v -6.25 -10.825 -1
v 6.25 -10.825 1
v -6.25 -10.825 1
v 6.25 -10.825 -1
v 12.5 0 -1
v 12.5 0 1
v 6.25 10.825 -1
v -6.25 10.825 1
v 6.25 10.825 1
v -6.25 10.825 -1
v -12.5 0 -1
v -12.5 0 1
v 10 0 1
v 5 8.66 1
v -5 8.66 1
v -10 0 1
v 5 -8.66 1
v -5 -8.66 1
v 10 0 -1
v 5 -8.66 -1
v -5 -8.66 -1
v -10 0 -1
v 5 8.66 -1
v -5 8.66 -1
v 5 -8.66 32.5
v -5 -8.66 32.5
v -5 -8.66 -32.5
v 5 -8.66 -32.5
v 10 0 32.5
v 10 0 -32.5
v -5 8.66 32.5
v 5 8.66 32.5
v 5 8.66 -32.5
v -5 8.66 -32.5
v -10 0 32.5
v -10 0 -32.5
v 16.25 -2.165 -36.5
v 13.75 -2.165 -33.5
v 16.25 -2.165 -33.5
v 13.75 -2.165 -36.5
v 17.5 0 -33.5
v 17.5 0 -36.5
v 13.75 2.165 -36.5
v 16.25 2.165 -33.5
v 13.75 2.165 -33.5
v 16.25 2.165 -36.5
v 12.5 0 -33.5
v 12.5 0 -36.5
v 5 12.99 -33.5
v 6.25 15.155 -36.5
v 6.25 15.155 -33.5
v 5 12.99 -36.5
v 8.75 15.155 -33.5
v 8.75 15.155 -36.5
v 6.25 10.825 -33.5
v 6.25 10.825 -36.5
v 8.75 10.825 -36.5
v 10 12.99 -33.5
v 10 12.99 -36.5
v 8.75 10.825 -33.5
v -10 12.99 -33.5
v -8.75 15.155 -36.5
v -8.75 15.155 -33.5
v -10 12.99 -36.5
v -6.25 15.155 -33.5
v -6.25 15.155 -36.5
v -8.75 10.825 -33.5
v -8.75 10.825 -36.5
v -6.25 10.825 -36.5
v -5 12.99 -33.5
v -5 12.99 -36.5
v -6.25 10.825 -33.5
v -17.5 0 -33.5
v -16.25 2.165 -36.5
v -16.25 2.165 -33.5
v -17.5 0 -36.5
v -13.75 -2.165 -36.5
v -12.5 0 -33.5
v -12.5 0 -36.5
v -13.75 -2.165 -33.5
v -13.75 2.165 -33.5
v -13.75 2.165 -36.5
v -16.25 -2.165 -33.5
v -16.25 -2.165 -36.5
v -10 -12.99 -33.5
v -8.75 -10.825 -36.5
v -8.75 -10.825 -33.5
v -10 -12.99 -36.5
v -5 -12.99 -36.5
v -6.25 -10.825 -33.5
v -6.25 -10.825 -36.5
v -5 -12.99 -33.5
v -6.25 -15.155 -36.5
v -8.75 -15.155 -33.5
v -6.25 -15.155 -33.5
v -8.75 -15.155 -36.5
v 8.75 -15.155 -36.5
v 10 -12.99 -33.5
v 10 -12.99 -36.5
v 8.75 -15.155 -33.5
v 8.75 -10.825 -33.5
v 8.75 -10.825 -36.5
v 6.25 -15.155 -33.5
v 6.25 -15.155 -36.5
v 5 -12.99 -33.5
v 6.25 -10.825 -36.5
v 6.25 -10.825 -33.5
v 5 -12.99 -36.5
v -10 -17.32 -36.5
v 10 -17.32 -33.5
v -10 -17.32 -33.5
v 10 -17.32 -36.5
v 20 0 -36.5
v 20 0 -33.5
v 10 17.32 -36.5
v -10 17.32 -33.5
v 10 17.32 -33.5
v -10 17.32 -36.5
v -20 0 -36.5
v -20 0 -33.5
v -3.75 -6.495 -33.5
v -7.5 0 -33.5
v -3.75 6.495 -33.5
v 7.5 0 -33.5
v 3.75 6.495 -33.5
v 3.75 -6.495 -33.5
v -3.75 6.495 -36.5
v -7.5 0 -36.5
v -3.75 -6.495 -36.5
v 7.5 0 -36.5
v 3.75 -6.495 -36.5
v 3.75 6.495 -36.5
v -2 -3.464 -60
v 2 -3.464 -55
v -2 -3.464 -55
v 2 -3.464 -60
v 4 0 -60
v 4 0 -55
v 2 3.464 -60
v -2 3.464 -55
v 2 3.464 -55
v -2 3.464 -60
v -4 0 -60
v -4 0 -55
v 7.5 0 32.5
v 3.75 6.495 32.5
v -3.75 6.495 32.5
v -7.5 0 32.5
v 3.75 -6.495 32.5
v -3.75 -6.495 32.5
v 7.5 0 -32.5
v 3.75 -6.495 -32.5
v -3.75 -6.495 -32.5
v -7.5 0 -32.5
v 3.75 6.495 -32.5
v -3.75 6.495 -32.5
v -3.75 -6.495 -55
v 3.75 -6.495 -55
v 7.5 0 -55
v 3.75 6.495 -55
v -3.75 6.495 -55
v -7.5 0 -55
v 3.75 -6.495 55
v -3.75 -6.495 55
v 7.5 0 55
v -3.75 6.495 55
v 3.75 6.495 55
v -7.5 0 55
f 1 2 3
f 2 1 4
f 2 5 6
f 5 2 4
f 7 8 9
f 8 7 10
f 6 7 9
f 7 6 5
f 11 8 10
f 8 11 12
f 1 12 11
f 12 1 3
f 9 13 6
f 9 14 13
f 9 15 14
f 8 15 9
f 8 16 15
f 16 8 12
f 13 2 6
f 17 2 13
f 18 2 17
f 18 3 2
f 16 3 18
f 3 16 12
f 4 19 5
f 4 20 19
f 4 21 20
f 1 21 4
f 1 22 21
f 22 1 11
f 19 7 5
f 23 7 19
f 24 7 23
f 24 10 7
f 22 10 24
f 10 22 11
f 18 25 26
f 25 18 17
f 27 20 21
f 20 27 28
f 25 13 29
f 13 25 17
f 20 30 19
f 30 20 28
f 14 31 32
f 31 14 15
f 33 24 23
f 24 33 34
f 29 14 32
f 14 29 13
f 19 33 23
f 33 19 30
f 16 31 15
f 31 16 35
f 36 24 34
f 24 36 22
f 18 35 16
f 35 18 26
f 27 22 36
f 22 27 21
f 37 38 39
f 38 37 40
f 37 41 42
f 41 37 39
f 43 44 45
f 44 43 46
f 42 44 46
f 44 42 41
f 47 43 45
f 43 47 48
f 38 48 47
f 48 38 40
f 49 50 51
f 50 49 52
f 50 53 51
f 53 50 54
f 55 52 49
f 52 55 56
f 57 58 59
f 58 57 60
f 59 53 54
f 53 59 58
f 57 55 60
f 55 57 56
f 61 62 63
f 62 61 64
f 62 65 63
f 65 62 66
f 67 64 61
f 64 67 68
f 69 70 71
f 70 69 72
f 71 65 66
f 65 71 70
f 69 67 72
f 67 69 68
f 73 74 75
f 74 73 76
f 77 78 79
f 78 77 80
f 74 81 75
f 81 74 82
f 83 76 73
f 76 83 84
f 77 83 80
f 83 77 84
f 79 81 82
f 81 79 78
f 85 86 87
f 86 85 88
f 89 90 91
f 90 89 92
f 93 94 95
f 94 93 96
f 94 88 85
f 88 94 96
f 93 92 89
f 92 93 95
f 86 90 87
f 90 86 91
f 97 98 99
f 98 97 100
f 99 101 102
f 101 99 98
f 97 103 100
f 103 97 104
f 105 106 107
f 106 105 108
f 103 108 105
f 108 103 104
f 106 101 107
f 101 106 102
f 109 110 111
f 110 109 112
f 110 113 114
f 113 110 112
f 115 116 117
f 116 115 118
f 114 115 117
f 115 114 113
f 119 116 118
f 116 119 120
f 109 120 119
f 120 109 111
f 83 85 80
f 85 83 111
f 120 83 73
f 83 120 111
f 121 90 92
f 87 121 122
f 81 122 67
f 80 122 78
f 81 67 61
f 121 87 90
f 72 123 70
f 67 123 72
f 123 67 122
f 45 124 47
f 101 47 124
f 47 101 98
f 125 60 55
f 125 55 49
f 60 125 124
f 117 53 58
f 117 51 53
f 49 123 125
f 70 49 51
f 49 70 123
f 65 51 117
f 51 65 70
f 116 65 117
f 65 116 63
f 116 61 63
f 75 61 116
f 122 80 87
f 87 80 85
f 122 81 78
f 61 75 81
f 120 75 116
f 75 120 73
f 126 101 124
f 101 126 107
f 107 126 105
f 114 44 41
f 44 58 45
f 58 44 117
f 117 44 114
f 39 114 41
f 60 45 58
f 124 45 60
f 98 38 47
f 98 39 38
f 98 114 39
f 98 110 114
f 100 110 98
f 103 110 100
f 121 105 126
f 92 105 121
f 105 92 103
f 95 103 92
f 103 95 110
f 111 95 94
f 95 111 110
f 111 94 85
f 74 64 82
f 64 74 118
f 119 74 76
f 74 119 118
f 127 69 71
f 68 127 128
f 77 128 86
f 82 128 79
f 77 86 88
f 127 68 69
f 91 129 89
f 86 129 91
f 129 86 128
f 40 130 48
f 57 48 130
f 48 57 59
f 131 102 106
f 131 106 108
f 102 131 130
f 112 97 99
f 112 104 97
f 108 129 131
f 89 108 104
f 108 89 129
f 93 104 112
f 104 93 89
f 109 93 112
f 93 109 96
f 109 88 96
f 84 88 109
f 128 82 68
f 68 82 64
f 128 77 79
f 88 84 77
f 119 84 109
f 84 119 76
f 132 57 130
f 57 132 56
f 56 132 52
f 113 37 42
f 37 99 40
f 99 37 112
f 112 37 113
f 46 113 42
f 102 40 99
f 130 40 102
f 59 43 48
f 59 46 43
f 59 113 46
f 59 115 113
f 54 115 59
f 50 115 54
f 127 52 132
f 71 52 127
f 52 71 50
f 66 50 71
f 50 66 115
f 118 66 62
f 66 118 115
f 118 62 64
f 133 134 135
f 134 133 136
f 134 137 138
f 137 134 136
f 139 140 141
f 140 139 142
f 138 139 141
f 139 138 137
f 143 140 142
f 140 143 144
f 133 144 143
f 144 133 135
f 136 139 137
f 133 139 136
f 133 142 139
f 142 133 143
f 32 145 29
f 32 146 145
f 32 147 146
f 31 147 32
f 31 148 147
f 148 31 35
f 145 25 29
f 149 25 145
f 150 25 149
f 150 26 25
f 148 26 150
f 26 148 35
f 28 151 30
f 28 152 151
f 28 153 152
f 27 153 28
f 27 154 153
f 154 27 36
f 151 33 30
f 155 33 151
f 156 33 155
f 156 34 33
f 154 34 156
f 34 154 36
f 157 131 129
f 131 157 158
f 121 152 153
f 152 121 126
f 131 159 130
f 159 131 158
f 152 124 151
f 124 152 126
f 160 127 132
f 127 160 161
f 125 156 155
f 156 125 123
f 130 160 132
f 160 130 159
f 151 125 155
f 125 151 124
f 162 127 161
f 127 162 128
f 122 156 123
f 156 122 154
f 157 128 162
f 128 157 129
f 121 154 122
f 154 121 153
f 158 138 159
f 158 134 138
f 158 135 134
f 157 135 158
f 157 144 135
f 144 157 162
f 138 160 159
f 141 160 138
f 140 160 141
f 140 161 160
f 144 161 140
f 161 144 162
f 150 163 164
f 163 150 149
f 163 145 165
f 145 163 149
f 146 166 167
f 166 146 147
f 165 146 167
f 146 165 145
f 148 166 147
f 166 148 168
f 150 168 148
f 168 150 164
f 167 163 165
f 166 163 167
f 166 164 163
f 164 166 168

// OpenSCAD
// Parameters for the central shaft
central_shaft_diameter = 20; // Diameter of the central shaft
central_shaft_length = 65;   // Length of the central shaft (increased slightly for accuracy)
$fn = 100;                   // Increased resolution for smoother surface

// Central Shaft
module central_shaft() {
    cylinder(h = central_shaft_length, d = central_shaft_diameter, center = true);
}

// Render the central shaft
translate([0, 0, 0]) {
    central_shaft();
}

// Parameters for the input shaft
input_shaft_diameter = 15; // Diameter of the input shaft
input_shaft_length = 50;   // Length of the input shaft (increased slightly for accuracy)
$fn = 100;                 // Increased resolution for smoother surface

// Input Shaft
module input_shaft() {
    cylinder(h = input_shaft_length, d = input_shaft_diameter, center = true);
}

// Render the input shaft
translate([0, 0, -30]) {
    input_shaft();
}

// Parameters for the output shaft
output_shaft_diameter = 15; // Diameter of the output shaft
output_shaft_length = 50;   // Length of the output shaft (increased slightly for accuracy)
$fn = 100;                  // Increased resolution for smoother surface

// Output Shaft
module output_shaft() {
    cylinder(h = output_shaft_length, d = output_shaft_diameter, center = true);
}

// Render the output shaft
translate([0, 0, 30]) {
    output_shaft();
}

// Parameters for the spacer ring
spacer_ring_outer_diameter = 25; // Outer diameter of the spacer ring
spacer_ring_inner_diameter = 20; // Inner diameter of the spacer ring
spacer_ring_thickness = 2;       // Thickness of the spacer ring (reduced for accuracy)
$fn = 100;                       // Increased resolution for smoother surface

// Spacer Ring
module spacer_ring() {
    difference() {
        cylinder(h = spacer_ring_thickness, d = spacer_ring_outer_diameter, center = true);
        cylinder(h = spacer_ring_thickness + 1, d = spacer_ring_inner_diameter, center = true);
    }
}

// Render the spacer ring
translate([0, 0, 0]) {
    spacer_ring();
}

// Parameters for the flange plate
flange_plate_diameter = 40; // Diameter of the flange plate
flange_plate_thickness = 3; // Thickness of the flange plate (reduced for accuracy)
bolt_hole_diameter = 5;     // Diameter of the bolt holes
bolt_hole_count = 6;        // Number of bolt holes (increased for accuracy)
$fn = 100;                  // Increased resolution for smoother surface

// Flange Plate
module flange_plate() {
    difference() {
        cylinder(h = flange_plate_thickness, d = flange_plate_diameter, center = true);
        for (i = [0:360/bolt_hole_count:360-360/bolt_hole_count]) {
            rotate([0, 0, i]) {
                translate([flange_plate_diameter/2 - 5, 0, 0]) {
                    cylinder(h = flange_plate_thickness + 1, d = bolt_hole_diameter, center = true);
                }
            }
        }
    }
}

// Render the flange plate
translate([0, 0, -35]) {
    flange_plate();
}

// Parameters for the nut
nut_diameter = 10; // Diameter of the nut
nut_thickness = 5; // Thickness of the nut (reduced for accuracy)
$fn = 6;           // Hexagonal shape for the nut

// Nut
module nut() {
    cylinder(h = nut_thickness, d = nut_diameter, center = true);
}

// Render the nut
translate([0, 0, 40]) {
    nut();
}

// Parameters for the bolt
bolt_diameter = 8; // Diameter of the bolt (reduced for accuracy)
bolt_length = 20;  // Length of the bolt
bolt_head_diameter = 12; // Diameter of the bolt head
bolt_head_thickness = 4; // Thickness of the bolt head
$fn = 6;                 // Hexagonal shape for the bolt head

// Bolt
module bolt() {
    union() {
        cylinder(h = bolt_length, d = bolt_diameter, center = true);
        translate([0, 0, bolt_length/2]) {
            cylinder(h = bolt_head_thickness, d = bolt_head_diameter, center = true);
        }
    }
}

// Render the bolt
translate([0, 0, -50]) {
    bolt();
}
